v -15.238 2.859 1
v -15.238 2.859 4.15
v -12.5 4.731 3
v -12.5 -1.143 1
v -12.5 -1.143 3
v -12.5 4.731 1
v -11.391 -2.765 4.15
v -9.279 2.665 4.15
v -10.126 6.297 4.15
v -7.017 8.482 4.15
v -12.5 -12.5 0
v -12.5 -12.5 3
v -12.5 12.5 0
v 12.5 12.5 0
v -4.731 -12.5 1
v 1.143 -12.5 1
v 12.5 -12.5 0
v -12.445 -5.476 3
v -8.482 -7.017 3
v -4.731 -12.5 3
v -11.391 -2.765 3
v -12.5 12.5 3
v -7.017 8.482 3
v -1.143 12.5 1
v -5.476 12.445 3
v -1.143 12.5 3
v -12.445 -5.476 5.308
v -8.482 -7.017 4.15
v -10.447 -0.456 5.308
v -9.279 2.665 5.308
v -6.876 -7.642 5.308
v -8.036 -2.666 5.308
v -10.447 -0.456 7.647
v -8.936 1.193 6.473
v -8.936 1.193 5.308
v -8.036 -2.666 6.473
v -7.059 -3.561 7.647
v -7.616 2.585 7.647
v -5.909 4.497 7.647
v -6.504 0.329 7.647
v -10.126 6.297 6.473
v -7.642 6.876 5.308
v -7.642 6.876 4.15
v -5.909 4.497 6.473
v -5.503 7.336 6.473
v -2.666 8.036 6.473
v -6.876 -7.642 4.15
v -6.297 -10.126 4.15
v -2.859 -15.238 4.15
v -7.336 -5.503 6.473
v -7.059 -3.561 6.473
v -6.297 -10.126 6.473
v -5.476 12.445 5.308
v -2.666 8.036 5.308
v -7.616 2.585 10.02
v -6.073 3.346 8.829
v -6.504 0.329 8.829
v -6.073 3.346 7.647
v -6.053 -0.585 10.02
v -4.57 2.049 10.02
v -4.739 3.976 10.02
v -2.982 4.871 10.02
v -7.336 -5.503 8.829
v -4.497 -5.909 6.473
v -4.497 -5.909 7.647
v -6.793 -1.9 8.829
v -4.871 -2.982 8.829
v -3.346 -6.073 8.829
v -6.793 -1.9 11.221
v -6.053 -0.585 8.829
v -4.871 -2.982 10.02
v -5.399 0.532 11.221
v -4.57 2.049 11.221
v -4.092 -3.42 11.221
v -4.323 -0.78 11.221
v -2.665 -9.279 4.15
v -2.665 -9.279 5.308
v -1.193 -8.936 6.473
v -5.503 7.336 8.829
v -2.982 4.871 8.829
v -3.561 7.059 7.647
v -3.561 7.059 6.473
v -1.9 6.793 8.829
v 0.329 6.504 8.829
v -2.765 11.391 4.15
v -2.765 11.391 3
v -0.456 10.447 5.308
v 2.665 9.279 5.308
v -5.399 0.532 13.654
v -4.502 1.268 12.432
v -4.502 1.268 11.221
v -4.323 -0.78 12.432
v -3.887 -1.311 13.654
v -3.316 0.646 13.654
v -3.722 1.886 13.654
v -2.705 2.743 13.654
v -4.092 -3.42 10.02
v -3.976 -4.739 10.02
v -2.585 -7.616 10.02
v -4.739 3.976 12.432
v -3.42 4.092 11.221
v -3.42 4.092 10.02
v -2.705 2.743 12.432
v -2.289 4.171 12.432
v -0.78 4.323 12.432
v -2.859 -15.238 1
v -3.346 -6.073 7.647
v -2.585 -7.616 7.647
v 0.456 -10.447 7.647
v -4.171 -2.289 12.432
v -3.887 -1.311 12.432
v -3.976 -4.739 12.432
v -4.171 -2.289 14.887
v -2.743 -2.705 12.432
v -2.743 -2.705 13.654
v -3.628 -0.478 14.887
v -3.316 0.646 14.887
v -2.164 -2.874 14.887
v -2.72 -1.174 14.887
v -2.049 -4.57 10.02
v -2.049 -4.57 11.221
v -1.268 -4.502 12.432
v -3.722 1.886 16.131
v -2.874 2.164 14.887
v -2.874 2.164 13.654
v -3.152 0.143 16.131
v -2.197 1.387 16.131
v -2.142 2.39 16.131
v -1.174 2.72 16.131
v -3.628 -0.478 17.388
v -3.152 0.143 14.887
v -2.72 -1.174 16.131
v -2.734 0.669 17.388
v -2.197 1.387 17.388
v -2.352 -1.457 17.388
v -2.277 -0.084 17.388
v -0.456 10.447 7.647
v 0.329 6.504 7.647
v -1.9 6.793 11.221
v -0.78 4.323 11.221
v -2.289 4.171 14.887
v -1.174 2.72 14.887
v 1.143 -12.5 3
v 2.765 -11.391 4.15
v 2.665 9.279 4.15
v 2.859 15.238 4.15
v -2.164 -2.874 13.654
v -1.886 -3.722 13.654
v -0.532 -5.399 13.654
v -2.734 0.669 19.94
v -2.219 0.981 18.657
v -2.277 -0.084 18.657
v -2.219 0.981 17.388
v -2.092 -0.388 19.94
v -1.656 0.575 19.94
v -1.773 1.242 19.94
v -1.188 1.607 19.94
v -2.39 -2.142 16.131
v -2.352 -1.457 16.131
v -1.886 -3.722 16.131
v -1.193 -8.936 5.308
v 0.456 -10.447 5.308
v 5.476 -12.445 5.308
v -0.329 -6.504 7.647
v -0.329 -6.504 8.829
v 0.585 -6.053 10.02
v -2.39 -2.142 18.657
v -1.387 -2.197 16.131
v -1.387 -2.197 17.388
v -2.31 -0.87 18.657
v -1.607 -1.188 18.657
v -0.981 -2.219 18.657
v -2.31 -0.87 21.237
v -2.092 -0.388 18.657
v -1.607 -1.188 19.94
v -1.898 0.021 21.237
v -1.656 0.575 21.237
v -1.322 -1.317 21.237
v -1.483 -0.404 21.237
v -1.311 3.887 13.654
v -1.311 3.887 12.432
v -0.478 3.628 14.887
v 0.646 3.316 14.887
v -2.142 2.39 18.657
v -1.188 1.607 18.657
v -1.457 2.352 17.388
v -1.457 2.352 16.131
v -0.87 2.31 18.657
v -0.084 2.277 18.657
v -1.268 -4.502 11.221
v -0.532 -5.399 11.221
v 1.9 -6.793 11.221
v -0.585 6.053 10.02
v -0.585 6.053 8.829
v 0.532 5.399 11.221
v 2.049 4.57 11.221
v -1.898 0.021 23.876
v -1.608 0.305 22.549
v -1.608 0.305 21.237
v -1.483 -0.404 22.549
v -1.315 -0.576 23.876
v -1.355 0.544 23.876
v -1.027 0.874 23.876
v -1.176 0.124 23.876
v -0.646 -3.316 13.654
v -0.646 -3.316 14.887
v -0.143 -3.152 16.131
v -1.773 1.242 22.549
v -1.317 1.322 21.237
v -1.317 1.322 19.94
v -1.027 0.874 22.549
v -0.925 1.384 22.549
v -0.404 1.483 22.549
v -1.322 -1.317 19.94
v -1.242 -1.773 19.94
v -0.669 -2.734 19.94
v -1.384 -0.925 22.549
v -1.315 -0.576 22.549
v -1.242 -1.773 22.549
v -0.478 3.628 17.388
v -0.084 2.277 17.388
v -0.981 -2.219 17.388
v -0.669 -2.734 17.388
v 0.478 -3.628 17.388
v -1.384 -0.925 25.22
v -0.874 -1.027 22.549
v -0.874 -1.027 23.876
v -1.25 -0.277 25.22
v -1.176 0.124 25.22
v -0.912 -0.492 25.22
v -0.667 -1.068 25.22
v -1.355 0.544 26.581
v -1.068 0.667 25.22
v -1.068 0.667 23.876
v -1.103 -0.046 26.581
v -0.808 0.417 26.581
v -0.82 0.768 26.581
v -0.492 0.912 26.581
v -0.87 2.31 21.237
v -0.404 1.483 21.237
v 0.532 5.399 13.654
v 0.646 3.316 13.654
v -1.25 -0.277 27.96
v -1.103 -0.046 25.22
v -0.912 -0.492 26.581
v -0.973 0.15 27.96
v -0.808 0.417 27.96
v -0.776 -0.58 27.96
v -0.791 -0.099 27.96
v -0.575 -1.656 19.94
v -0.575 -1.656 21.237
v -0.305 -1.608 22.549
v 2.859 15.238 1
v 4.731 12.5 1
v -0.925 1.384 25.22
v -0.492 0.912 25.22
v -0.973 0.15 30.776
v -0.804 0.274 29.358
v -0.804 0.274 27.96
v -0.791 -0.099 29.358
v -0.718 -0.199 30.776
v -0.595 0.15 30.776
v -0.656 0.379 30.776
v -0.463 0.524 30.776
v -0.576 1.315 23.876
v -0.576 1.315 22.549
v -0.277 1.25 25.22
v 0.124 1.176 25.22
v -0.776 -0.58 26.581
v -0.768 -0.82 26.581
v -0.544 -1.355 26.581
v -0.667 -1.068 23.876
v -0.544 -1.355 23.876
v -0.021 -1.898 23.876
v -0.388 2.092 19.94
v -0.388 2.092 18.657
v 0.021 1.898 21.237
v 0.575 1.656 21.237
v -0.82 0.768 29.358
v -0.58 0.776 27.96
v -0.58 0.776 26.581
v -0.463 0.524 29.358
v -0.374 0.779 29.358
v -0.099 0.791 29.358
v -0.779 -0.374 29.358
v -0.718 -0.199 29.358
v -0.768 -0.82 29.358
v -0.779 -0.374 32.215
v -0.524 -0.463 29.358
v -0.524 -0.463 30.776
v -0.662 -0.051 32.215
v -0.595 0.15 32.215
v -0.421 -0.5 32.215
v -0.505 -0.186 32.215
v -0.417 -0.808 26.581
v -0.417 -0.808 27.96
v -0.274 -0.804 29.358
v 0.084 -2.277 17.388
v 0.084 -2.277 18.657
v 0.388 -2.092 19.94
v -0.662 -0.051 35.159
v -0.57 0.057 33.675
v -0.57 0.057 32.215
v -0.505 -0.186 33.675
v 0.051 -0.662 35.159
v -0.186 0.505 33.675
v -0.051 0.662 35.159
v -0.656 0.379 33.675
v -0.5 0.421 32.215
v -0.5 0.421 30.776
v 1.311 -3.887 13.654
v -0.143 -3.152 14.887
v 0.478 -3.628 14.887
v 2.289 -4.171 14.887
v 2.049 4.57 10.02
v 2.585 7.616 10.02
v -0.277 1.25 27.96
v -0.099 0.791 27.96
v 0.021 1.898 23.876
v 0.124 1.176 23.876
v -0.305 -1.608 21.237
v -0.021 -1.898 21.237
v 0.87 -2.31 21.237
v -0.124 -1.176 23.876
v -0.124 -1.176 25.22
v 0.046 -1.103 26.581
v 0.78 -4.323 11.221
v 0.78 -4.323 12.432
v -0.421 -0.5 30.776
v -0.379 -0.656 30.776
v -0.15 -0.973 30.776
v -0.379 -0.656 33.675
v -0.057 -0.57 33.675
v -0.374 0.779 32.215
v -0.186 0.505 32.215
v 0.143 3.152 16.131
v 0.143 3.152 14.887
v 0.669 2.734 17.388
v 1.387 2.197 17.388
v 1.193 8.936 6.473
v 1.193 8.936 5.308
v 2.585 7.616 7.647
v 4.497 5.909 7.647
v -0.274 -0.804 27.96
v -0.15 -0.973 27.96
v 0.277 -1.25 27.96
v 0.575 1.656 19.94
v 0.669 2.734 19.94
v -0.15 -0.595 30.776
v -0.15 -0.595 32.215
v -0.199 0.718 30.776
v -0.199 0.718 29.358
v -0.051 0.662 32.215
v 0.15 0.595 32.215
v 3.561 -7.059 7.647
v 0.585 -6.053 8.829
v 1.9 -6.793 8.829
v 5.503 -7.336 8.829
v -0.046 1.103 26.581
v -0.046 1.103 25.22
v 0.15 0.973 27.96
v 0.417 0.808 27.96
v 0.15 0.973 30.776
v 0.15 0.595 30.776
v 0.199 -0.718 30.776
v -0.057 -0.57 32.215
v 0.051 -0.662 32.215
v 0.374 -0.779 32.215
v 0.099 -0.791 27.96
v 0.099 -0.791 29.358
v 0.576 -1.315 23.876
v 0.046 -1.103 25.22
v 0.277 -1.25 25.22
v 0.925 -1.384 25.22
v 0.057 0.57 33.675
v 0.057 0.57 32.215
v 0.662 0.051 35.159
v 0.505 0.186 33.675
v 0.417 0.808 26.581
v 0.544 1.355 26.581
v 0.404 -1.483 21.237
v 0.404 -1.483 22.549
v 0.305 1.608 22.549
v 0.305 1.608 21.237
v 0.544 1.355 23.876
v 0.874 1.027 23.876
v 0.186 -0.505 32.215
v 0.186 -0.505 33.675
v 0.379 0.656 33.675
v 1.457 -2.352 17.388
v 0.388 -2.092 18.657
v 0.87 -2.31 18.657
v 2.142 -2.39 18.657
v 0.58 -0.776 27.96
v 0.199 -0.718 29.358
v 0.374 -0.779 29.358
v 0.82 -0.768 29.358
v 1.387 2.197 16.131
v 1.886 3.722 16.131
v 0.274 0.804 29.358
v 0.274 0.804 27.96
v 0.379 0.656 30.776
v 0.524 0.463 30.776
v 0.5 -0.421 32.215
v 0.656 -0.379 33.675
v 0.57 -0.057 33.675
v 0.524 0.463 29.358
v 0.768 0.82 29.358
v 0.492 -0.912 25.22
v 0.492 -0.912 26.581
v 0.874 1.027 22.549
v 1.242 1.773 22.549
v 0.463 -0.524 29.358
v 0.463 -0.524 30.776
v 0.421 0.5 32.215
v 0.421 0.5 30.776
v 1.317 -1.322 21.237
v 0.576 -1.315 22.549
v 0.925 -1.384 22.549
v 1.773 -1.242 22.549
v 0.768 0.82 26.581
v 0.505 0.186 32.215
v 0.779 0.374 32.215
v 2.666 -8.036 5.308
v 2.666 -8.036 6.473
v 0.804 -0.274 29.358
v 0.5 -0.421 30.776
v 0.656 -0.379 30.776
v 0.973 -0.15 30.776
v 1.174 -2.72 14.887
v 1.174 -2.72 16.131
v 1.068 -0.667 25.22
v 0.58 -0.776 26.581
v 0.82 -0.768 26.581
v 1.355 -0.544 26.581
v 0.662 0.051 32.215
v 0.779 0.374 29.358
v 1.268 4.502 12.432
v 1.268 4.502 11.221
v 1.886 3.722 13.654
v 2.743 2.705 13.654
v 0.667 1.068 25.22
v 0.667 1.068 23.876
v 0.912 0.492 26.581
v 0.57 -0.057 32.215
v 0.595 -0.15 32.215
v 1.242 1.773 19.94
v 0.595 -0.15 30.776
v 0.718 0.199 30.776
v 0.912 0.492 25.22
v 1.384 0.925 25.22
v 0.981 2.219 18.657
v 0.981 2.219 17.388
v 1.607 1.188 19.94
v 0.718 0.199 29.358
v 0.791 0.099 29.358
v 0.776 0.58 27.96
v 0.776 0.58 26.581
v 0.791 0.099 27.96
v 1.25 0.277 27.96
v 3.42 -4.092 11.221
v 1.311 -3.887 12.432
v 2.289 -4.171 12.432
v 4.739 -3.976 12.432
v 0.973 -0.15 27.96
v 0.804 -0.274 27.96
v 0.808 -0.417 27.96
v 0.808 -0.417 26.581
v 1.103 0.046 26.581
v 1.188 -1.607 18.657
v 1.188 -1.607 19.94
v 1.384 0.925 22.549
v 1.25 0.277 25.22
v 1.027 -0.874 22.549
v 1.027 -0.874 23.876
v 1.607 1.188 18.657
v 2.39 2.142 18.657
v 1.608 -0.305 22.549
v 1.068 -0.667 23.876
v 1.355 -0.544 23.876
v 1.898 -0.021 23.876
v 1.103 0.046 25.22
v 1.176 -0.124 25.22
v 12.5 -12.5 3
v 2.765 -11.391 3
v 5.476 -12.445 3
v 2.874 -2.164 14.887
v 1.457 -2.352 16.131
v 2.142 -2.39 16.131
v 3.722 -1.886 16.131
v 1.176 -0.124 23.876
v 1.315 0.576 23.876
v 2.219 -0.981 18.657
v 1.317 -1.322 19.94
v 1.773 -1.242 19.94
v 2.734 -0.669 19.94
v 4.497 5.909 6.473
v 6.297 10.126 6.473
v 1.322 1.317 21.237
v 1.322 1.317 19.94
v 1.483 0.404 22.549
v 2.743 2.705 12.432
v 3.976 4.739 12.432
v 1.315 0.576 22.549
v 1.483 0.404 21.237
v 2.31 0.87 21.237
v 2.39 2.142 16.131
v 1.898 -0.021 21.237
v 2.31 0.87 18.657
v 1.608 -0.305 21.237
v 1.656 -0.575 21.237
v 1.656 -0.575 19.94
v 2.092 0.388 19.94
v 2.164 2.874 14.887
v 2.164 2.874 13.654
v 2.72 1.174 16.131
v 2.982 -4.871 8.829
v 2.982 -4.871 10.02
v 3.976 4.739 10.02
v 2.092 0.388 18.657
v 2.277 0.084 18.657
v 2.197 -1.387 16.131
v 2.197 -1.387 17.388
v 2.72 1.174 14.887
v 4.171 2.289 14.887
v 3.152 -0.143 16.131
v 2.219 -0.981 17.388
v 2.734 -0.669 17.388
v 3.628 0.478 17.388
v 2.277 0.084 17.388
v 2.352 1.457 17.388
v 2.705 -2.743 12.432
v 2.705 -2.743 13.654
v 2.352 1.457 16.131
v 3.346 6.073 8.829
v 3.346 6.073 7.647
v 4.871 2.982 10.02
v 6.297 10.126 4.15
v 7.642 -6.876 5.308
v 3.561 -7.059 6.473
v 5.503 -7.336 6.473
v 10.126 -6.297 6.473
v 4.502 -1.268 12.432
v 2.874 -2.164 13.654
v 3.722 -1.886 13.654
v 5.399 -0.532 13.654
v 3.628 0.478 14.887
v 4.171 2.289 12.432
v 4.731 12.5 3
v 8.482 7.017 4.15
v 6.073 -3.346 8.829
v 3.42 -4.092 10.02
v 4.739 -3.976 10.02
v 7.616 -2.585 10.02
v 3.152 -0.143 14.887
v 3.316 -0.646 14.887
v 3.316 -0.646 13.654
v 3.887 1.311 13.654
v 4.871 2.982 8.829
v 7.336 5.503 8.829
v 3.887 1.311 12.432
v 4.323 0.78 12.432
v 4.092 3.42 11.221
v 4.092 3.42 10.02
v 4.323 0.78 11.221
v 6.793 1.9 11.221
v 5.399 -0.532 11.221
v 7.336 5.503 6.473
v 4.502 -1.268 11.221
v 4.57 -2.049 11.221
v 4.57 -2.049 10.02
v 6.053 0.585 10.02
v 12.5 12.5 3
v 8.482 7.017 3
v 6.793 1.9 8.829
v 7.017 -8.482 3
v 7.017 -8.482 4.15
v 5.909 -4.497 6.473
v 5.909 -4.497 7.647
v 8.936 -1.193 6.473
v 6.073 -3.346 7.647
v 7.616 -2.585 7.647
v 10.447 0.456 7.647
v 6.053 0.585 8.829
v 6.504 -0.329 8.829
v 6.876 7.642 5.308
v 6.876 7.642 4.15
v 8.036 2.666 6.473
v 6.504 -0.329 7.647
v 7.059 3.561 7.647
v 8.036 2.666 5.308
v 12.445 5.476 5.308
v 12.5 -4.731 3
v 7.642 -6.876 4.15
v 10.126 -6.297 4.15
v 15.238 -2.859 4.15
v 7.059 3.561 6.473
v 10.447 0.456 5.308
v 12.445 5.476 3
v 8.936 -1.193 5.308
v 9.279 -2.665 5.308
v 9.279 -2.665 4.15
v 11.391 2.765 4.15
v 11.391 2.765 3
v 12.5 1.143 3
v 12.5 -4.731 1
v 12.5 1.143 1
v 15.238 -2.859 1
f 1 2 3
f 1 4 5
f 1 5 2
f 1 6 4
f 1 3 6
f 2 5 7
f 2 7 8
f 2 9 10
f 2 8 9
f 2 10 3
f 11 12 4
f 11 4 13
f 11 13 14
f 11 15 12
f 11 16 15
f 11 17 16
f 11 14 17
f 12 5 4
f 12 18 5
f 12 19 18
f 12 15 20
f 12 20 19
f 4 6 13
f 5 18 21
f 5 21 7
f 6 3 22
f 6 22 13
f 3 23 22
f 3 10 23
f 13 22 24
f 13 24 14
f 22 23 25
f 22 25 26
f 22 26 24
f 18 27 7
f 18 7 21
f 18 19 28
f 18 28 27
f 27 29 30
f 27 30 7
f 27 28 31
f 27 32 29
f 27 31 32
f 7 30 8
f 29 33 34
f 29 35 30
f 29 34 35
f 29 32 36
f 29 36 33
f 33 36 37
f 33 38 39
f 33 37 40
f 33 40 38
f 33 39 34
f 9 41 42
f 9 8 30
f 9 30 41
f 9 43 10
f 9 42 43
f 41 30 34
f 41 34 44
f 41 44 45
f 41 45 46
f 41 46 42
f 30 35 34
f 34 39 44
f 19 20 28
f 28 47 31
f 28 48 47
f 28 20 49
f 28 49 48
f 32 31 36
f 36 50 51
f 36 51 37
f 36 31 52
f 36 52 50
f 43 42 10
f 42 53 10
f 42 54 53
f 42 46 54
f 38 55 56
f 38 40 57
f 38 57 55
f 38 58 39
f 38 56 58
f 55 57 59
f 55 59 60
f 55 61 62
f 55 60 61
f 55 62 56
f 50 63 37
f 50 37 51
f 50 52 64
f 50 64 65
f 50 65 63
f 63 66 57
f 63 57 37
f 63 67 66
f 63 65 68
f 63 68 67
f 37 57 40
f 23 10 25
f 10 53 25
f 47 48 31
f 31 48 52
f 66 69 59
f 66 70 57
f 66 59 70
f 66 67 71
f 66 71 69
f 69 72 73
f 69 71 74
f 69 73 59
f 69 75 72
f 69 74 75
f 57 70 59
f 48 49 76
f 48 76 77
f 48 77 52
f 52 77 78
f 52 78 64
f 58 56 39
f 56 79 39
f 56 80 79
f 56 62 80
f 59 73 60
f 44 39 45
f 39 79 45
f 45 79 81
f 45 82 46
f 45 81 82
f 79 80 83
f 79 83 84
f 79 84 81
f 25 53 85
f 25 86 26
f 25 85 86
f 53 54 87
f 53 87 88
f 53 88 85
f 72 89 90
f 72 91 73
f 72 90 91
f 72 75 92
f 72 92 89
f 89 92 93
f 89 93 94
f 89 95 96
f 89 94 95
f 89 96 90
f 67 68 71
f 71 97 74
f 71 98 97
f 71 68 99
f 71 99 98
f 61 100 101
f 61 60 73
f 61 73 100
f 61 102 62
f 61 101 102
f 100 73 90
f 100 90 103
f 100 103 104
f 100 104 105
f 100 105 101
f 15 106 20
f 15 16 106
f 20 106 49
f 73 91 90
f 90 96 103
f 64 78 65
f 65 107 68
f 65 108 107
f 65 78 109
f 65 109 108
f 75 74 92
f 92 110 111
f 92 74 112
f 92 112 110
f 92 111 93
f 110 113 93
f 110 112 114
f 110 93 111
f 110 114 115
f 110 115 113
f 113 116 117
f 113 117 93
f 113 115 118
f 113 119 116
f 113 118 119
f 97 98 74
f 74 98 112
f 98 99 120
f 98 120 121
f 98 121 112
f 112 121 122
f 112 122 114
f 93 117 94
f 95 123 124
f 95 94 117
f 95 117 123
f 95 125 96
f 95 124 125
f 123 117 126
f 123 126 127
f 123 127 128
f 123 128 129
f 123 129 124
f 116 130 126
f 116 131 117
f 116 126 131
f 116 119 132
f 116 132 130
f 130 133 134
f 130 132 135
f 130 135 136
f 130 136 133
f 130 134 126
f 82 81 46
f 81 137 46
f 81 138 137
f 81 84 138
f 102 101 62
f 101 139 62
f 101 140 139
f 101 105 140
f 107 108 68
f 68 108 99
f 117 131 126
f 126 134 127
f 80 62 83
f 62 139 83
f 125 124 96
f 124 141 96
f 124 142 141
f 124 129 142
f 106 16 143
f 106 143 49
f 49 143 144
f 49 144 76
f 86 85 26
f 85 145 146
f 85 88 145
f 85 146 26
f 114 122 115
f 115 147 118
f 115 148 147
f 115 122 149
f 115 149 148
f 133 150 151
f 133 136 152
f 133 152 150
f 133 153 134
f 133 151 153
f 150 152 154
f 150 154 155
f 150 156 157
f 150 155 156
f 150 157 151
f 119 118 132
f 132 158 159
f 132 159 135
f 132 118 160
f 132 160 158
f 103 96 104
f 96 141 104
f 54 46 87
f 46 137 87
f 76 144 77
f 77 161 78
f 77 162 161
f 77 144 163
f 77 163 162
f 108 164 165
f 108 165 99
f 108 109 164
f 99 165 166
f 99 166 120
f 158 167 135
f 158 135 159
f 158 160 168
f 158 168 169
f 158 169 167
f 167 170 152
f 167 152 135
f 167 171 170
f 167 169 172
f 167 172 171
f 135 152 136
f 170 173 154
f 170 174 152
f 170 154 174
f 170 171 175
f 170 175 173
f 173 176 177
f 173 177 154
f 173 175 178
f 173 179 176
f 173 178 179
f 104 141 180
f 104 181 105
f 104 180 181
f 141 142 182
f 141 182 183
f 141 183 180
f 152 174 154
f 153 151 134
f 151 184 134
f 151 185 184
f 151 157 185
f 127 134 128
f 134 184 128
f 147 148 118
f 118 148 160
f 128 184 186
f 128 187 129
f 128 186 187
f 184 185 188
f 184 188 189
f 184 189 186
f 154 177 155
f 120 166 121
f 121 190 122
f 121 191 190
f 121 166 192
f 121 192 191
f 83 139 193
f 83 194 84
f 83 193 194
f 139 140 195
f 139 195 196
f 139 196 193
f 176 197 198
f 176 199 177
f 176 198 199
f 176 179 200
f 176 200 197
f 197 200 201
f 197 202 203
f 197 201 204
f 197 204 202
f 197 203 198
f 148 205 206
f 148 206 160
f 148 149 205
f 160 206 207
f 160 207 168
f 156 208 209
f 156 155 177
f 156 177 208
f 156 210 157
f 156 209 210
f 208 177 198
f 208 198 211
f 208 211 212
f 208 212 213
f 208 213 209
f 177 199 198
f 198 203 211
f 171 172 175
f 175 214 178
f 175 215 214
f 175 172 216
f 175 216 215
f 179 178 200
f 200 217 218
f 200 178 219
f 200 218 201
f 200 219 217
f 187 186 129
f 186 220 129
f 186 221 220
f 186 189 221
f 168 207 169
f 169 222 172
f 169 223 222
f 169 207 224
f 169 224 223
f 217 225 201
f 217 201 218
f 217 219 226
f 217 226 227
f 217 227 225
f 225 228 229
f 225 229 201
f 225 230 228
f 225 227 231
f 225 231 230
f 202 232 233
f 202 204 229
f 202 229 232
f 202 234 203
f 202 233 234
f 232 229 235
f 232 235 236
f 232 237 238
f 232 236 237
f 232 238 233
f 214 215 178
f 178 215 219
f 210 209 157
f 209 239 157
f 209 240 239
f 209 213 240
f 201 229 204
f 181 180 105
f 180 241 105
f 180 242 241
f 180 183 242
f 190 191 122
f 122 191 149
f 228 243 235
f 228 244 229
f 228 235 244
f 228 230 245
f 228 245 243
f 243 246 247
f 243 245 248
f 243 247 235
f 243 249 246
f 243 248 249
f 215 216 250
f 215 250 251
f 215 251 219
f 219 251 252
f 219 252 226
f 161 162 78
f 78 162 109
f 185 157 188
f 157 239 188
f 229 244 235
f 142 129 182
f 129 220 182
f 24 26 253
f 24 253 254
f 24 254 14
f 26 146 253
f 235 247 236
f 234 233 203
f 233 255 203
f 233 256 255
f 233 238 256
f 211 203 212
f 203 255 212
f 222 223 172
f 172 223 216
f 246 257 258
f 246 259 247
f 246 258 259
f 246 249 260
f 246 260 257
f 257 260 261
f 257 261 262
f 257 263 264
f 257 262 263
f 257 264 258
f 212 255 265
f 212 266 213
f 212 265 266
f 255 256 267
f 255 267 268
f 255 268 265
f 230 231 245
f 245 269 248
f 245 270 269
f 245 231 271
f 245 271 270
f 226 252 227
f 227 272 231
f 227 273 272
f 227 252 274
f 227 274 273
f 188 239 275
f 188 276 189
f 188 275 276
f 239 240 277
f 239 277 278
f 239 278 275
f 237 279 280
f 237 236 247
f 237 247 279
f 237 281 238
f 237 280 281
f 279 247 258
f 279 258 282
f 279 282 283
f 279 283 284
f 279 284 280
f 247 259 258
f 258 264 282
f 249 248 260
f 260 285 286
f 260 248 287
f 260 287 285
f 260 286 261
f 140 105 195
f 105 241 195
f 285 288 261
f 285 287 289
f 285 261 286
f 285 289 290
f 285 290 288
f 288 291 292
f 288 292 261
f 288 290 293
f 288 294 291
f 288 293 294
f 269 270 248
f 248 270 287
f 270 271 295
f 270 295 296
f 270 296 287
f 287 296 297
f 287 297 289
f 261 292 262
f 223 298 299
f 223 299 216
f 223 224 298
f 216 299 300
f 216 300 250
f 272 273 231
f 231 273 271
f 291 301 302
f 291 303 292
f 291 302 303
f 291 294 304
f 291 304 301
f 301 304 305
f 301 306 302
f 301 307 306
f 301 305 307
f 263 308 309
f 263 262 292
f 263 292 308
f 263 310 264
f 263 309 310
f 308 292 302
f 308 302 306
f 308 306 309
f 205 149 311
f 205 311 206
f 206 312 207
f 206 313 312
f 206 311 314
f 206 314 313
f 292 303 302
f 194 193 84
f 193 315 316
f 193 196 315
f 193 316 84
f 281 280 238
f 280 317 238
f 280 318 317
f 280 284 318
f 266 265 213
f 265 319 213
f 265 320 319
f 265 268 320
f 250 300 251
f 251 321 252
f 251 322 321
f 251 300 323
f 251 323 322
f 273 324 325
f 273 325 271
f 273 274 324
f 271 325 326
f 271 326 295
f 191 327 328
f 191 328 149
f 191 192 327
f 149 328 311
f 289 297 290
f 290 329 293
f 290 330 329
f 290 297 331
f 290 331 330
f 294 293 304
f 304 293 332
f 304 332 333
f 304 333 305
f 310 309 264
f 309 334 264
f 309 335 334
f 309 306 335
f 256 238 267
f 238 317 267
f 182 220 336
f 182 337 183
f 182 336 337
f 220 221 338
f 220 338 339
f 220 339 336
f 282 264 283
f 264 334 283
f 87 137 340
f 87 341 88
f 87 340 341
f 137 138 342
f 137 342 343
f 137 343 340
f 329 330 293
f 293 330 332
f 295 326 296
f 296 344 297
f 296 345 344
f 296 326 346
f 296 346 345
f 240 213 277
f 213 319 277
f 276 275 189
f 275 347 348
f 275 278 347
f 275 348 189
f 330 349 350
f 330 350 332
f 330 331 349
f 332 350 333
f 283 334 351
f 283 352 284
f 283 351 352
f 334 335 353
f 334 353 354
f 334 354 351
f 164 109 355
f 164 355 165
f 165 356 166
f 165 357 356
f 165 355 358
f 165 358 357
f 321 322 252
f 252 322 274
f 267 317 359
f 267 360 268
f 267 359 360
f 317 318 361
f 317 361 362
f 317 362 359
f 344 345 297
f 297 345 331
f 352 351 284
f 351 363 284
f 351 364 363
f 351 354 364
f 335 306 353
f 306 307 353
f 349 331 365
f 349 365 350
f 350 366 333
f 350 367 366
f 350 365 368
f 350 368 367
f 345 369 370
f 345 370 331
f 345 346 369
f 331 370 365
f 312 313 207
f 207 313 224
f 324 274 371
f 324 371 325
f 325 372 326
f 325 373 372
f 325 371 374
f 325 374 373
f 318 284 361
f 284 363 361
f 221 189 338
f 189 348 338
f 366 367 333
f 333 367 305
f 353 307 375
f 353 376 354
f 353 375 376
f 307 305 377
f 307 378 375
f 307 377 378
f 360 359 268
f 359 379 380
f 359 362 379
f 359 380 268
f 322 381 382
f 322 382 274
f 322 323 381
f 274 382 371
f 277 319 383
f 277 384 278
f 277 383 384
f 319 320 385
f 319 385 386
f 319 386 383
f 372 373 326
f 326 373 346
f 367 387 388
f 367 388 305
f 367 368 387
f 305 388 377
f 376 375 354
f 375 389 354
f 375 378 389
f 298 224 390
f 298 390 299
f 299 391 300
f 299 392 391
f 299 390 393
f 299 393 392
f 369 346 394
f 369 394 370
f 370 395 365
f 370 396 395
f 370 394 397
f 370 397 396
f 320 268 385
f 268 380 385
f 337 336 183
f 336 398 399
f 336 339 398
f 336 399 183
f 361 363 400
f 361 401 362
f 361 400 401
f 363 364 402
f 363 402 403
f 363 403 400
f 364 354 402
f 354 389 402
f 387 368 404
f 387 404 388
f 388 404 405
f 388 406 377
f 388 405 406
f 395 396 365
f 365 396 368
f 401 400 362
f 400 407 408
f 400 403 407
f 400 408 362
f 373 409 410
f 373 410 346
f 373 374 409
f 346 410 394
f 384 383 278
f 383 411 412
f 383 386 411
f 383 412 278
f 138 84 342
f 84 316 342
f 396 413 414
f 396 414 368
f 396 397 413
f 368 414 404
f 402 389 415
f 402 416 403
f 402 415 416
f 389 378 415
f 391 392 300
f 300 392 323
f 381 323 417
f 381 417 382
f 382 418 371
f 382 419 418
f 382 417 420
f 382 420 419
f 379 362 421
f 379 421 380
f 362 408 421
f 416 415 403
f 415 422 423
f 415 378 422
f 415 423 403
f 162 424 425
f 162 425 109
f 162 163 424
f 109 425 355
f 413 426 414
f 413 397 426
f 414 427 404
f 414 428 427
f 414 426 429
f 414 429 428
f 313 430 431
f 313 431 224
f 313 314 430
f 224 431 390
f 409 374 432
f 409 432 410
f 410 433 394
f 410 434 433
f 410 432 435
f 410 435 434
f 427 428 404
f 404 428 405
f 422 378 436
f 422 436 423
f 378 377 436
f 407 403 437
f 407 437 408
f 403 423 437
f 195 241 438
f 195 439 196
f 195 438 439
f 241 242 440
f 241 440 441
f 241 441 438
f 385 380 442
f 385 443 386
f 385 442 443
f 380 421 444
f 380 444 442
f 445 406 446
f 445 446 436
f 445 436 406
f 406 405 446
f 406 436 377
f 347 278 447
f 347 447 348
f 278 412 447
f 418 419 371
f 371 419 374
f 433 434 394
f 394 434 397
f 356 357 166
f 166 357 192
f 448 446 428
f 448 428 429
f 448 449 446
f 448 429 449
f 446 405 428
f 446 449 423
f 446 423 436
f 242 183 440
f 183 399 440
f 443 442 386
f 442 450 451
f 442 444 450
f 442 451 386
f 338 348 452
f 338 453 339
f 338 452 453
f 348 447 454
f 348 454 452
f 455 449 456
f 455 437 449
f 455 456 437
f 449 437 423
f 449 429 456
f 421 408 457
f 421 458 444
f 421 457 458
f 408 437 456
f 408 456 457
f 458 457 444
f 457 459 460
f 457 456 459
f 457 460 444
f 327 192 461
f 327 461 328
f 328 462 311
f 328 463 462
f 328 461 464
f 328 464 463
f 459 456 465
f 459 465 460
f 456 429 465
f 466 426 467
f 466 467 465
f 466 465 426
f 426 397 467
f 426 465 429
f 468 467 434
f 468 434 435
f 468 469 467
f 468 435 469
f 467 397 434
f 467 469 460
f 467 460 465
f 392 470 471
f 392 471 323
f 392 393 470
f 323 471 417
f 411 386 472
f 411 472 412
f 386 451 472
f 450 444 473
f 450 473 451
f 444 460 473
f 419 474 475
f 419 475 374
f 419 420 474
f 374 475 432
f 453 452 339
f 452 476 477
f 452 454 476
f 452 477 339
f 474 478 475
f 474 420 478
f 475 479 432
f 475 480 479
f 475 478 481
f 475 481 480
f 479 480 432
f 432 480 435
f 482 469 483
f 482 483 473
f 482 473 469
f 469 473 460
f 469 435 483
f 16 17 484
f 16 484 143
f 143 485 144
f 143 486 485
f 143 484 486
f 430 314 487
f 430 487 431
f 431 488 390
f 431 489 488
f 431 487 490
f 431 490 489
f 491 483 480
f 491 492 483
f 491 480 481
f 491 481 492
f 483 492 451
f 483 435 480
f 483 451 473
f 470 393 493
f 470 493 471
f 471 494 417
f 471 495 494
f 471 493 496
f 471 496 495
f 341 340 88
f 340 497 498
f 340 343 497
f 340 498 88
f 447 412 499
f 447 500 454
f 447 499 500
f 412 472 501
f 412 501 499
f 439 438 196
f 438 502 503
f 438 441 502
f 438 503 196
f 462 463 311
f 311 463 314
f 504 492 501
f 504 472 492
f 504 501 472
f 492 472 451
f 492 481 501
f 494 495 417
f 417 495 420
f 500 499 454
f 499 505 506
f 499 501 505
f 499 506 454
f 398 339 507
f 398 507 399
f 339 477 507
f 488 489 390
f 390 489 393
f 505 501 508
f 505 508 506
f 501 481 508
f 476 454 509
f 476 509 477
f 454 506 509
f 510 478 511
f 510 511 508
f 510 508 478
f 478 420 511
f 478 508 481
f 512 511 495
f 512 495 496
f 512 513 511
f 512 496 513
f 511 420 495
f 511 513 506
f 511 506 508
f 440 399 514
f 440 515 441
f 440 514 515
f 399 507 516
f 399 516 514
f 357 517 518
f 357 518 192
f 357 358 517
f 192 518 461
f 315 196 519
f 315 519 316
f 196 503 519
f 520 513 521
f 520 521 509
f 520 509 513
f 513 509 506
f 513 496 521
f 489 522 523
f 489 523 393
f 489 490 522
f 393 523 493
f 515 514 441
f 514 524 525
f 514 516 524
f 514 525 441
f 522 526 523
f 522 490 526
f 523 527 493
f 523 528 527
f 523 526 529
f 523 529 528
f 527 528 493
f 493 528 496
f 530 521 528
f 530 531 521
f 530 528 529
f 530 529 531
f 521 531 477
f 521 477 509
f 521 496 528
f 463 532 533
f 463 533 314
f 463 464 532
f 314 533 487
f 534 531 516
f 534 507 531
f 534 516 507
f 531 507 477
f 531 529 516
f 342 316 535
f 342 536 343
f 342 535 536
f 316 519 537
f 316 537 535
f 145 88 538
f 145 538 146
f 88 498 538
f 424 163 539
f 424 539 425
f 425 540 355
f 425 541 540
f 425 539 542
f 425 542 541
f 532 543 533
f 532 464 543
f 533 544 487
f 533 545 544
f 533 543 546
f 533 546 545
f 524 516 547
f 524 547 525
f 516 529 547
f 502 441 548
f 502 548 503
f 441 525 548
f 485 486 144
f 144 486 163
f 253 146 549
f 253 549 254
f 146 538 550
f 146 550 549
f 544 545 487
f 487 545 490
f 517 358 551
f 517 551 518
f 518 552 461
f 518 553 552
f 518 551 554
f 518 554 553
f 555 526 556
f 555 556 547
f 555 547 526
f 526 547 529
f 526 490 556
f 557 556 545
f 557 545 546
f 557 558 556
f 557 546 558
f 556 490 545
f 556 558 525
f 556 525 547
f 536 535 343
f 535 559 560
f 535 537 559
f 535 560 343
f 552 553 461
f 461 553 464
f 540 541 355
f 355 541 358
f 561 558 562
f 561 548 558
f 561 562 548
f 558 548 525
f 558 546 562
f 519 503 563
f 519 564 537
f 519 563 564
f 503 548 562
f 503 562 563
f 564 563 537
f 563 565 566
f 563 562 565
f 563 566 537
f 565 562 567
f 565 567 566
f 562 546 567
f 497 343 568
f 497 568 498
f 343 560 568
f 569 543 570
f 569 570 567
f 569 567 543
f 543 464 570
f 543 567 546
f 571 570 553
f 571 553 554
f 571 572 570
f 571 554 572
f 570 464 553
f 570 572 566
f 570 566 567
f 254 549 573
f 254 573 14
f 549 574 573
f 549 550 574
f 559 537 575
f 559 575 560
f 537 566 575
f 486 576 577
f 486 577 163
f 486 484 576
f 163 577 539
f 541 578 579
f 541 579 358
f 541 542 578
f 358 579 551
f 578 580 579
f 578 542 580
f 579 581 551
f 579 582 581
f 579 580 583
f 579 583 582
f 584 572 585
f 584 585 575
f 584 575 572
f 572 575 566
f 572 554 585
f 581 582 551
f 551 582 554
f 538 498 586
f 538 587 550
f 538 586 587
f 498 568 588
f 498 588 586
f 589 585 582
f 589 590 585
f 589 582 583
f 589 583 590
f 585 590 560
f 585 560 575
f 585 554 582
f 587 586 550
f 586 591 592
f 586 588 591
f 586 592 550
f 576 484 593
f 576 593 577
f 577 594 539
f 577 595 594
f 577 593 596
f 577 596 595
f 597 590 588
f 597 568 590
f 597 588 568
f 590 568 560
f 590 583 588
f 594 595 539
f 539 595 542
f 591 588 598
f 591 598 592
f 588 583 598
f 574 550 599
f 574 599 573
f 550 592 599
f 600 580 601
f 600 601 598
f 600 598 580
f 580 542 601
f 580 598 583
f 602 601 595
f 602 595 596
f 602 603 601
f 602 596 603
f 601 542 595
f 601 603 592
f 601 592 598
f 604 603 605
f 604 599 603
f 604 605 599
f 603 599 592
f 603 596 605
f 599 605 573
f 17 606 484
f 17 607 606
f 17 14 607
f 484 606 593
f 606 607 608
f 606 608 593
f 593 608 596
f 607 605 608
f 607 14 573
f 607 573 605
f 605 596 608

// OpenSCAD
/* scADVENT 2021 - Tower  by Ulrich Bär  license:CC0 
 https://creativecommons.org/publicdomain/zero/1.0/
 
 
 Today we have a Tower, not much code needed for this
 */

/*[Tower]*/
max=25;
s=25;
h=3;


Tower(s,max,h);

// recursively one cube on the other, each a little smaller 

module Tower(s=25,max=25,h=3,count=0){
  if(count<max)translate([0,0,1])rotate(137.5/4)Tower(count=count+1,max=max,s=s*0.877,h=h*1.05);
  color(count/max*[1.0,0.5,0.7]+[0.0, 0.5, 0.3])translate([-s/2,-s/2])cube([s,s,h],false);
}
